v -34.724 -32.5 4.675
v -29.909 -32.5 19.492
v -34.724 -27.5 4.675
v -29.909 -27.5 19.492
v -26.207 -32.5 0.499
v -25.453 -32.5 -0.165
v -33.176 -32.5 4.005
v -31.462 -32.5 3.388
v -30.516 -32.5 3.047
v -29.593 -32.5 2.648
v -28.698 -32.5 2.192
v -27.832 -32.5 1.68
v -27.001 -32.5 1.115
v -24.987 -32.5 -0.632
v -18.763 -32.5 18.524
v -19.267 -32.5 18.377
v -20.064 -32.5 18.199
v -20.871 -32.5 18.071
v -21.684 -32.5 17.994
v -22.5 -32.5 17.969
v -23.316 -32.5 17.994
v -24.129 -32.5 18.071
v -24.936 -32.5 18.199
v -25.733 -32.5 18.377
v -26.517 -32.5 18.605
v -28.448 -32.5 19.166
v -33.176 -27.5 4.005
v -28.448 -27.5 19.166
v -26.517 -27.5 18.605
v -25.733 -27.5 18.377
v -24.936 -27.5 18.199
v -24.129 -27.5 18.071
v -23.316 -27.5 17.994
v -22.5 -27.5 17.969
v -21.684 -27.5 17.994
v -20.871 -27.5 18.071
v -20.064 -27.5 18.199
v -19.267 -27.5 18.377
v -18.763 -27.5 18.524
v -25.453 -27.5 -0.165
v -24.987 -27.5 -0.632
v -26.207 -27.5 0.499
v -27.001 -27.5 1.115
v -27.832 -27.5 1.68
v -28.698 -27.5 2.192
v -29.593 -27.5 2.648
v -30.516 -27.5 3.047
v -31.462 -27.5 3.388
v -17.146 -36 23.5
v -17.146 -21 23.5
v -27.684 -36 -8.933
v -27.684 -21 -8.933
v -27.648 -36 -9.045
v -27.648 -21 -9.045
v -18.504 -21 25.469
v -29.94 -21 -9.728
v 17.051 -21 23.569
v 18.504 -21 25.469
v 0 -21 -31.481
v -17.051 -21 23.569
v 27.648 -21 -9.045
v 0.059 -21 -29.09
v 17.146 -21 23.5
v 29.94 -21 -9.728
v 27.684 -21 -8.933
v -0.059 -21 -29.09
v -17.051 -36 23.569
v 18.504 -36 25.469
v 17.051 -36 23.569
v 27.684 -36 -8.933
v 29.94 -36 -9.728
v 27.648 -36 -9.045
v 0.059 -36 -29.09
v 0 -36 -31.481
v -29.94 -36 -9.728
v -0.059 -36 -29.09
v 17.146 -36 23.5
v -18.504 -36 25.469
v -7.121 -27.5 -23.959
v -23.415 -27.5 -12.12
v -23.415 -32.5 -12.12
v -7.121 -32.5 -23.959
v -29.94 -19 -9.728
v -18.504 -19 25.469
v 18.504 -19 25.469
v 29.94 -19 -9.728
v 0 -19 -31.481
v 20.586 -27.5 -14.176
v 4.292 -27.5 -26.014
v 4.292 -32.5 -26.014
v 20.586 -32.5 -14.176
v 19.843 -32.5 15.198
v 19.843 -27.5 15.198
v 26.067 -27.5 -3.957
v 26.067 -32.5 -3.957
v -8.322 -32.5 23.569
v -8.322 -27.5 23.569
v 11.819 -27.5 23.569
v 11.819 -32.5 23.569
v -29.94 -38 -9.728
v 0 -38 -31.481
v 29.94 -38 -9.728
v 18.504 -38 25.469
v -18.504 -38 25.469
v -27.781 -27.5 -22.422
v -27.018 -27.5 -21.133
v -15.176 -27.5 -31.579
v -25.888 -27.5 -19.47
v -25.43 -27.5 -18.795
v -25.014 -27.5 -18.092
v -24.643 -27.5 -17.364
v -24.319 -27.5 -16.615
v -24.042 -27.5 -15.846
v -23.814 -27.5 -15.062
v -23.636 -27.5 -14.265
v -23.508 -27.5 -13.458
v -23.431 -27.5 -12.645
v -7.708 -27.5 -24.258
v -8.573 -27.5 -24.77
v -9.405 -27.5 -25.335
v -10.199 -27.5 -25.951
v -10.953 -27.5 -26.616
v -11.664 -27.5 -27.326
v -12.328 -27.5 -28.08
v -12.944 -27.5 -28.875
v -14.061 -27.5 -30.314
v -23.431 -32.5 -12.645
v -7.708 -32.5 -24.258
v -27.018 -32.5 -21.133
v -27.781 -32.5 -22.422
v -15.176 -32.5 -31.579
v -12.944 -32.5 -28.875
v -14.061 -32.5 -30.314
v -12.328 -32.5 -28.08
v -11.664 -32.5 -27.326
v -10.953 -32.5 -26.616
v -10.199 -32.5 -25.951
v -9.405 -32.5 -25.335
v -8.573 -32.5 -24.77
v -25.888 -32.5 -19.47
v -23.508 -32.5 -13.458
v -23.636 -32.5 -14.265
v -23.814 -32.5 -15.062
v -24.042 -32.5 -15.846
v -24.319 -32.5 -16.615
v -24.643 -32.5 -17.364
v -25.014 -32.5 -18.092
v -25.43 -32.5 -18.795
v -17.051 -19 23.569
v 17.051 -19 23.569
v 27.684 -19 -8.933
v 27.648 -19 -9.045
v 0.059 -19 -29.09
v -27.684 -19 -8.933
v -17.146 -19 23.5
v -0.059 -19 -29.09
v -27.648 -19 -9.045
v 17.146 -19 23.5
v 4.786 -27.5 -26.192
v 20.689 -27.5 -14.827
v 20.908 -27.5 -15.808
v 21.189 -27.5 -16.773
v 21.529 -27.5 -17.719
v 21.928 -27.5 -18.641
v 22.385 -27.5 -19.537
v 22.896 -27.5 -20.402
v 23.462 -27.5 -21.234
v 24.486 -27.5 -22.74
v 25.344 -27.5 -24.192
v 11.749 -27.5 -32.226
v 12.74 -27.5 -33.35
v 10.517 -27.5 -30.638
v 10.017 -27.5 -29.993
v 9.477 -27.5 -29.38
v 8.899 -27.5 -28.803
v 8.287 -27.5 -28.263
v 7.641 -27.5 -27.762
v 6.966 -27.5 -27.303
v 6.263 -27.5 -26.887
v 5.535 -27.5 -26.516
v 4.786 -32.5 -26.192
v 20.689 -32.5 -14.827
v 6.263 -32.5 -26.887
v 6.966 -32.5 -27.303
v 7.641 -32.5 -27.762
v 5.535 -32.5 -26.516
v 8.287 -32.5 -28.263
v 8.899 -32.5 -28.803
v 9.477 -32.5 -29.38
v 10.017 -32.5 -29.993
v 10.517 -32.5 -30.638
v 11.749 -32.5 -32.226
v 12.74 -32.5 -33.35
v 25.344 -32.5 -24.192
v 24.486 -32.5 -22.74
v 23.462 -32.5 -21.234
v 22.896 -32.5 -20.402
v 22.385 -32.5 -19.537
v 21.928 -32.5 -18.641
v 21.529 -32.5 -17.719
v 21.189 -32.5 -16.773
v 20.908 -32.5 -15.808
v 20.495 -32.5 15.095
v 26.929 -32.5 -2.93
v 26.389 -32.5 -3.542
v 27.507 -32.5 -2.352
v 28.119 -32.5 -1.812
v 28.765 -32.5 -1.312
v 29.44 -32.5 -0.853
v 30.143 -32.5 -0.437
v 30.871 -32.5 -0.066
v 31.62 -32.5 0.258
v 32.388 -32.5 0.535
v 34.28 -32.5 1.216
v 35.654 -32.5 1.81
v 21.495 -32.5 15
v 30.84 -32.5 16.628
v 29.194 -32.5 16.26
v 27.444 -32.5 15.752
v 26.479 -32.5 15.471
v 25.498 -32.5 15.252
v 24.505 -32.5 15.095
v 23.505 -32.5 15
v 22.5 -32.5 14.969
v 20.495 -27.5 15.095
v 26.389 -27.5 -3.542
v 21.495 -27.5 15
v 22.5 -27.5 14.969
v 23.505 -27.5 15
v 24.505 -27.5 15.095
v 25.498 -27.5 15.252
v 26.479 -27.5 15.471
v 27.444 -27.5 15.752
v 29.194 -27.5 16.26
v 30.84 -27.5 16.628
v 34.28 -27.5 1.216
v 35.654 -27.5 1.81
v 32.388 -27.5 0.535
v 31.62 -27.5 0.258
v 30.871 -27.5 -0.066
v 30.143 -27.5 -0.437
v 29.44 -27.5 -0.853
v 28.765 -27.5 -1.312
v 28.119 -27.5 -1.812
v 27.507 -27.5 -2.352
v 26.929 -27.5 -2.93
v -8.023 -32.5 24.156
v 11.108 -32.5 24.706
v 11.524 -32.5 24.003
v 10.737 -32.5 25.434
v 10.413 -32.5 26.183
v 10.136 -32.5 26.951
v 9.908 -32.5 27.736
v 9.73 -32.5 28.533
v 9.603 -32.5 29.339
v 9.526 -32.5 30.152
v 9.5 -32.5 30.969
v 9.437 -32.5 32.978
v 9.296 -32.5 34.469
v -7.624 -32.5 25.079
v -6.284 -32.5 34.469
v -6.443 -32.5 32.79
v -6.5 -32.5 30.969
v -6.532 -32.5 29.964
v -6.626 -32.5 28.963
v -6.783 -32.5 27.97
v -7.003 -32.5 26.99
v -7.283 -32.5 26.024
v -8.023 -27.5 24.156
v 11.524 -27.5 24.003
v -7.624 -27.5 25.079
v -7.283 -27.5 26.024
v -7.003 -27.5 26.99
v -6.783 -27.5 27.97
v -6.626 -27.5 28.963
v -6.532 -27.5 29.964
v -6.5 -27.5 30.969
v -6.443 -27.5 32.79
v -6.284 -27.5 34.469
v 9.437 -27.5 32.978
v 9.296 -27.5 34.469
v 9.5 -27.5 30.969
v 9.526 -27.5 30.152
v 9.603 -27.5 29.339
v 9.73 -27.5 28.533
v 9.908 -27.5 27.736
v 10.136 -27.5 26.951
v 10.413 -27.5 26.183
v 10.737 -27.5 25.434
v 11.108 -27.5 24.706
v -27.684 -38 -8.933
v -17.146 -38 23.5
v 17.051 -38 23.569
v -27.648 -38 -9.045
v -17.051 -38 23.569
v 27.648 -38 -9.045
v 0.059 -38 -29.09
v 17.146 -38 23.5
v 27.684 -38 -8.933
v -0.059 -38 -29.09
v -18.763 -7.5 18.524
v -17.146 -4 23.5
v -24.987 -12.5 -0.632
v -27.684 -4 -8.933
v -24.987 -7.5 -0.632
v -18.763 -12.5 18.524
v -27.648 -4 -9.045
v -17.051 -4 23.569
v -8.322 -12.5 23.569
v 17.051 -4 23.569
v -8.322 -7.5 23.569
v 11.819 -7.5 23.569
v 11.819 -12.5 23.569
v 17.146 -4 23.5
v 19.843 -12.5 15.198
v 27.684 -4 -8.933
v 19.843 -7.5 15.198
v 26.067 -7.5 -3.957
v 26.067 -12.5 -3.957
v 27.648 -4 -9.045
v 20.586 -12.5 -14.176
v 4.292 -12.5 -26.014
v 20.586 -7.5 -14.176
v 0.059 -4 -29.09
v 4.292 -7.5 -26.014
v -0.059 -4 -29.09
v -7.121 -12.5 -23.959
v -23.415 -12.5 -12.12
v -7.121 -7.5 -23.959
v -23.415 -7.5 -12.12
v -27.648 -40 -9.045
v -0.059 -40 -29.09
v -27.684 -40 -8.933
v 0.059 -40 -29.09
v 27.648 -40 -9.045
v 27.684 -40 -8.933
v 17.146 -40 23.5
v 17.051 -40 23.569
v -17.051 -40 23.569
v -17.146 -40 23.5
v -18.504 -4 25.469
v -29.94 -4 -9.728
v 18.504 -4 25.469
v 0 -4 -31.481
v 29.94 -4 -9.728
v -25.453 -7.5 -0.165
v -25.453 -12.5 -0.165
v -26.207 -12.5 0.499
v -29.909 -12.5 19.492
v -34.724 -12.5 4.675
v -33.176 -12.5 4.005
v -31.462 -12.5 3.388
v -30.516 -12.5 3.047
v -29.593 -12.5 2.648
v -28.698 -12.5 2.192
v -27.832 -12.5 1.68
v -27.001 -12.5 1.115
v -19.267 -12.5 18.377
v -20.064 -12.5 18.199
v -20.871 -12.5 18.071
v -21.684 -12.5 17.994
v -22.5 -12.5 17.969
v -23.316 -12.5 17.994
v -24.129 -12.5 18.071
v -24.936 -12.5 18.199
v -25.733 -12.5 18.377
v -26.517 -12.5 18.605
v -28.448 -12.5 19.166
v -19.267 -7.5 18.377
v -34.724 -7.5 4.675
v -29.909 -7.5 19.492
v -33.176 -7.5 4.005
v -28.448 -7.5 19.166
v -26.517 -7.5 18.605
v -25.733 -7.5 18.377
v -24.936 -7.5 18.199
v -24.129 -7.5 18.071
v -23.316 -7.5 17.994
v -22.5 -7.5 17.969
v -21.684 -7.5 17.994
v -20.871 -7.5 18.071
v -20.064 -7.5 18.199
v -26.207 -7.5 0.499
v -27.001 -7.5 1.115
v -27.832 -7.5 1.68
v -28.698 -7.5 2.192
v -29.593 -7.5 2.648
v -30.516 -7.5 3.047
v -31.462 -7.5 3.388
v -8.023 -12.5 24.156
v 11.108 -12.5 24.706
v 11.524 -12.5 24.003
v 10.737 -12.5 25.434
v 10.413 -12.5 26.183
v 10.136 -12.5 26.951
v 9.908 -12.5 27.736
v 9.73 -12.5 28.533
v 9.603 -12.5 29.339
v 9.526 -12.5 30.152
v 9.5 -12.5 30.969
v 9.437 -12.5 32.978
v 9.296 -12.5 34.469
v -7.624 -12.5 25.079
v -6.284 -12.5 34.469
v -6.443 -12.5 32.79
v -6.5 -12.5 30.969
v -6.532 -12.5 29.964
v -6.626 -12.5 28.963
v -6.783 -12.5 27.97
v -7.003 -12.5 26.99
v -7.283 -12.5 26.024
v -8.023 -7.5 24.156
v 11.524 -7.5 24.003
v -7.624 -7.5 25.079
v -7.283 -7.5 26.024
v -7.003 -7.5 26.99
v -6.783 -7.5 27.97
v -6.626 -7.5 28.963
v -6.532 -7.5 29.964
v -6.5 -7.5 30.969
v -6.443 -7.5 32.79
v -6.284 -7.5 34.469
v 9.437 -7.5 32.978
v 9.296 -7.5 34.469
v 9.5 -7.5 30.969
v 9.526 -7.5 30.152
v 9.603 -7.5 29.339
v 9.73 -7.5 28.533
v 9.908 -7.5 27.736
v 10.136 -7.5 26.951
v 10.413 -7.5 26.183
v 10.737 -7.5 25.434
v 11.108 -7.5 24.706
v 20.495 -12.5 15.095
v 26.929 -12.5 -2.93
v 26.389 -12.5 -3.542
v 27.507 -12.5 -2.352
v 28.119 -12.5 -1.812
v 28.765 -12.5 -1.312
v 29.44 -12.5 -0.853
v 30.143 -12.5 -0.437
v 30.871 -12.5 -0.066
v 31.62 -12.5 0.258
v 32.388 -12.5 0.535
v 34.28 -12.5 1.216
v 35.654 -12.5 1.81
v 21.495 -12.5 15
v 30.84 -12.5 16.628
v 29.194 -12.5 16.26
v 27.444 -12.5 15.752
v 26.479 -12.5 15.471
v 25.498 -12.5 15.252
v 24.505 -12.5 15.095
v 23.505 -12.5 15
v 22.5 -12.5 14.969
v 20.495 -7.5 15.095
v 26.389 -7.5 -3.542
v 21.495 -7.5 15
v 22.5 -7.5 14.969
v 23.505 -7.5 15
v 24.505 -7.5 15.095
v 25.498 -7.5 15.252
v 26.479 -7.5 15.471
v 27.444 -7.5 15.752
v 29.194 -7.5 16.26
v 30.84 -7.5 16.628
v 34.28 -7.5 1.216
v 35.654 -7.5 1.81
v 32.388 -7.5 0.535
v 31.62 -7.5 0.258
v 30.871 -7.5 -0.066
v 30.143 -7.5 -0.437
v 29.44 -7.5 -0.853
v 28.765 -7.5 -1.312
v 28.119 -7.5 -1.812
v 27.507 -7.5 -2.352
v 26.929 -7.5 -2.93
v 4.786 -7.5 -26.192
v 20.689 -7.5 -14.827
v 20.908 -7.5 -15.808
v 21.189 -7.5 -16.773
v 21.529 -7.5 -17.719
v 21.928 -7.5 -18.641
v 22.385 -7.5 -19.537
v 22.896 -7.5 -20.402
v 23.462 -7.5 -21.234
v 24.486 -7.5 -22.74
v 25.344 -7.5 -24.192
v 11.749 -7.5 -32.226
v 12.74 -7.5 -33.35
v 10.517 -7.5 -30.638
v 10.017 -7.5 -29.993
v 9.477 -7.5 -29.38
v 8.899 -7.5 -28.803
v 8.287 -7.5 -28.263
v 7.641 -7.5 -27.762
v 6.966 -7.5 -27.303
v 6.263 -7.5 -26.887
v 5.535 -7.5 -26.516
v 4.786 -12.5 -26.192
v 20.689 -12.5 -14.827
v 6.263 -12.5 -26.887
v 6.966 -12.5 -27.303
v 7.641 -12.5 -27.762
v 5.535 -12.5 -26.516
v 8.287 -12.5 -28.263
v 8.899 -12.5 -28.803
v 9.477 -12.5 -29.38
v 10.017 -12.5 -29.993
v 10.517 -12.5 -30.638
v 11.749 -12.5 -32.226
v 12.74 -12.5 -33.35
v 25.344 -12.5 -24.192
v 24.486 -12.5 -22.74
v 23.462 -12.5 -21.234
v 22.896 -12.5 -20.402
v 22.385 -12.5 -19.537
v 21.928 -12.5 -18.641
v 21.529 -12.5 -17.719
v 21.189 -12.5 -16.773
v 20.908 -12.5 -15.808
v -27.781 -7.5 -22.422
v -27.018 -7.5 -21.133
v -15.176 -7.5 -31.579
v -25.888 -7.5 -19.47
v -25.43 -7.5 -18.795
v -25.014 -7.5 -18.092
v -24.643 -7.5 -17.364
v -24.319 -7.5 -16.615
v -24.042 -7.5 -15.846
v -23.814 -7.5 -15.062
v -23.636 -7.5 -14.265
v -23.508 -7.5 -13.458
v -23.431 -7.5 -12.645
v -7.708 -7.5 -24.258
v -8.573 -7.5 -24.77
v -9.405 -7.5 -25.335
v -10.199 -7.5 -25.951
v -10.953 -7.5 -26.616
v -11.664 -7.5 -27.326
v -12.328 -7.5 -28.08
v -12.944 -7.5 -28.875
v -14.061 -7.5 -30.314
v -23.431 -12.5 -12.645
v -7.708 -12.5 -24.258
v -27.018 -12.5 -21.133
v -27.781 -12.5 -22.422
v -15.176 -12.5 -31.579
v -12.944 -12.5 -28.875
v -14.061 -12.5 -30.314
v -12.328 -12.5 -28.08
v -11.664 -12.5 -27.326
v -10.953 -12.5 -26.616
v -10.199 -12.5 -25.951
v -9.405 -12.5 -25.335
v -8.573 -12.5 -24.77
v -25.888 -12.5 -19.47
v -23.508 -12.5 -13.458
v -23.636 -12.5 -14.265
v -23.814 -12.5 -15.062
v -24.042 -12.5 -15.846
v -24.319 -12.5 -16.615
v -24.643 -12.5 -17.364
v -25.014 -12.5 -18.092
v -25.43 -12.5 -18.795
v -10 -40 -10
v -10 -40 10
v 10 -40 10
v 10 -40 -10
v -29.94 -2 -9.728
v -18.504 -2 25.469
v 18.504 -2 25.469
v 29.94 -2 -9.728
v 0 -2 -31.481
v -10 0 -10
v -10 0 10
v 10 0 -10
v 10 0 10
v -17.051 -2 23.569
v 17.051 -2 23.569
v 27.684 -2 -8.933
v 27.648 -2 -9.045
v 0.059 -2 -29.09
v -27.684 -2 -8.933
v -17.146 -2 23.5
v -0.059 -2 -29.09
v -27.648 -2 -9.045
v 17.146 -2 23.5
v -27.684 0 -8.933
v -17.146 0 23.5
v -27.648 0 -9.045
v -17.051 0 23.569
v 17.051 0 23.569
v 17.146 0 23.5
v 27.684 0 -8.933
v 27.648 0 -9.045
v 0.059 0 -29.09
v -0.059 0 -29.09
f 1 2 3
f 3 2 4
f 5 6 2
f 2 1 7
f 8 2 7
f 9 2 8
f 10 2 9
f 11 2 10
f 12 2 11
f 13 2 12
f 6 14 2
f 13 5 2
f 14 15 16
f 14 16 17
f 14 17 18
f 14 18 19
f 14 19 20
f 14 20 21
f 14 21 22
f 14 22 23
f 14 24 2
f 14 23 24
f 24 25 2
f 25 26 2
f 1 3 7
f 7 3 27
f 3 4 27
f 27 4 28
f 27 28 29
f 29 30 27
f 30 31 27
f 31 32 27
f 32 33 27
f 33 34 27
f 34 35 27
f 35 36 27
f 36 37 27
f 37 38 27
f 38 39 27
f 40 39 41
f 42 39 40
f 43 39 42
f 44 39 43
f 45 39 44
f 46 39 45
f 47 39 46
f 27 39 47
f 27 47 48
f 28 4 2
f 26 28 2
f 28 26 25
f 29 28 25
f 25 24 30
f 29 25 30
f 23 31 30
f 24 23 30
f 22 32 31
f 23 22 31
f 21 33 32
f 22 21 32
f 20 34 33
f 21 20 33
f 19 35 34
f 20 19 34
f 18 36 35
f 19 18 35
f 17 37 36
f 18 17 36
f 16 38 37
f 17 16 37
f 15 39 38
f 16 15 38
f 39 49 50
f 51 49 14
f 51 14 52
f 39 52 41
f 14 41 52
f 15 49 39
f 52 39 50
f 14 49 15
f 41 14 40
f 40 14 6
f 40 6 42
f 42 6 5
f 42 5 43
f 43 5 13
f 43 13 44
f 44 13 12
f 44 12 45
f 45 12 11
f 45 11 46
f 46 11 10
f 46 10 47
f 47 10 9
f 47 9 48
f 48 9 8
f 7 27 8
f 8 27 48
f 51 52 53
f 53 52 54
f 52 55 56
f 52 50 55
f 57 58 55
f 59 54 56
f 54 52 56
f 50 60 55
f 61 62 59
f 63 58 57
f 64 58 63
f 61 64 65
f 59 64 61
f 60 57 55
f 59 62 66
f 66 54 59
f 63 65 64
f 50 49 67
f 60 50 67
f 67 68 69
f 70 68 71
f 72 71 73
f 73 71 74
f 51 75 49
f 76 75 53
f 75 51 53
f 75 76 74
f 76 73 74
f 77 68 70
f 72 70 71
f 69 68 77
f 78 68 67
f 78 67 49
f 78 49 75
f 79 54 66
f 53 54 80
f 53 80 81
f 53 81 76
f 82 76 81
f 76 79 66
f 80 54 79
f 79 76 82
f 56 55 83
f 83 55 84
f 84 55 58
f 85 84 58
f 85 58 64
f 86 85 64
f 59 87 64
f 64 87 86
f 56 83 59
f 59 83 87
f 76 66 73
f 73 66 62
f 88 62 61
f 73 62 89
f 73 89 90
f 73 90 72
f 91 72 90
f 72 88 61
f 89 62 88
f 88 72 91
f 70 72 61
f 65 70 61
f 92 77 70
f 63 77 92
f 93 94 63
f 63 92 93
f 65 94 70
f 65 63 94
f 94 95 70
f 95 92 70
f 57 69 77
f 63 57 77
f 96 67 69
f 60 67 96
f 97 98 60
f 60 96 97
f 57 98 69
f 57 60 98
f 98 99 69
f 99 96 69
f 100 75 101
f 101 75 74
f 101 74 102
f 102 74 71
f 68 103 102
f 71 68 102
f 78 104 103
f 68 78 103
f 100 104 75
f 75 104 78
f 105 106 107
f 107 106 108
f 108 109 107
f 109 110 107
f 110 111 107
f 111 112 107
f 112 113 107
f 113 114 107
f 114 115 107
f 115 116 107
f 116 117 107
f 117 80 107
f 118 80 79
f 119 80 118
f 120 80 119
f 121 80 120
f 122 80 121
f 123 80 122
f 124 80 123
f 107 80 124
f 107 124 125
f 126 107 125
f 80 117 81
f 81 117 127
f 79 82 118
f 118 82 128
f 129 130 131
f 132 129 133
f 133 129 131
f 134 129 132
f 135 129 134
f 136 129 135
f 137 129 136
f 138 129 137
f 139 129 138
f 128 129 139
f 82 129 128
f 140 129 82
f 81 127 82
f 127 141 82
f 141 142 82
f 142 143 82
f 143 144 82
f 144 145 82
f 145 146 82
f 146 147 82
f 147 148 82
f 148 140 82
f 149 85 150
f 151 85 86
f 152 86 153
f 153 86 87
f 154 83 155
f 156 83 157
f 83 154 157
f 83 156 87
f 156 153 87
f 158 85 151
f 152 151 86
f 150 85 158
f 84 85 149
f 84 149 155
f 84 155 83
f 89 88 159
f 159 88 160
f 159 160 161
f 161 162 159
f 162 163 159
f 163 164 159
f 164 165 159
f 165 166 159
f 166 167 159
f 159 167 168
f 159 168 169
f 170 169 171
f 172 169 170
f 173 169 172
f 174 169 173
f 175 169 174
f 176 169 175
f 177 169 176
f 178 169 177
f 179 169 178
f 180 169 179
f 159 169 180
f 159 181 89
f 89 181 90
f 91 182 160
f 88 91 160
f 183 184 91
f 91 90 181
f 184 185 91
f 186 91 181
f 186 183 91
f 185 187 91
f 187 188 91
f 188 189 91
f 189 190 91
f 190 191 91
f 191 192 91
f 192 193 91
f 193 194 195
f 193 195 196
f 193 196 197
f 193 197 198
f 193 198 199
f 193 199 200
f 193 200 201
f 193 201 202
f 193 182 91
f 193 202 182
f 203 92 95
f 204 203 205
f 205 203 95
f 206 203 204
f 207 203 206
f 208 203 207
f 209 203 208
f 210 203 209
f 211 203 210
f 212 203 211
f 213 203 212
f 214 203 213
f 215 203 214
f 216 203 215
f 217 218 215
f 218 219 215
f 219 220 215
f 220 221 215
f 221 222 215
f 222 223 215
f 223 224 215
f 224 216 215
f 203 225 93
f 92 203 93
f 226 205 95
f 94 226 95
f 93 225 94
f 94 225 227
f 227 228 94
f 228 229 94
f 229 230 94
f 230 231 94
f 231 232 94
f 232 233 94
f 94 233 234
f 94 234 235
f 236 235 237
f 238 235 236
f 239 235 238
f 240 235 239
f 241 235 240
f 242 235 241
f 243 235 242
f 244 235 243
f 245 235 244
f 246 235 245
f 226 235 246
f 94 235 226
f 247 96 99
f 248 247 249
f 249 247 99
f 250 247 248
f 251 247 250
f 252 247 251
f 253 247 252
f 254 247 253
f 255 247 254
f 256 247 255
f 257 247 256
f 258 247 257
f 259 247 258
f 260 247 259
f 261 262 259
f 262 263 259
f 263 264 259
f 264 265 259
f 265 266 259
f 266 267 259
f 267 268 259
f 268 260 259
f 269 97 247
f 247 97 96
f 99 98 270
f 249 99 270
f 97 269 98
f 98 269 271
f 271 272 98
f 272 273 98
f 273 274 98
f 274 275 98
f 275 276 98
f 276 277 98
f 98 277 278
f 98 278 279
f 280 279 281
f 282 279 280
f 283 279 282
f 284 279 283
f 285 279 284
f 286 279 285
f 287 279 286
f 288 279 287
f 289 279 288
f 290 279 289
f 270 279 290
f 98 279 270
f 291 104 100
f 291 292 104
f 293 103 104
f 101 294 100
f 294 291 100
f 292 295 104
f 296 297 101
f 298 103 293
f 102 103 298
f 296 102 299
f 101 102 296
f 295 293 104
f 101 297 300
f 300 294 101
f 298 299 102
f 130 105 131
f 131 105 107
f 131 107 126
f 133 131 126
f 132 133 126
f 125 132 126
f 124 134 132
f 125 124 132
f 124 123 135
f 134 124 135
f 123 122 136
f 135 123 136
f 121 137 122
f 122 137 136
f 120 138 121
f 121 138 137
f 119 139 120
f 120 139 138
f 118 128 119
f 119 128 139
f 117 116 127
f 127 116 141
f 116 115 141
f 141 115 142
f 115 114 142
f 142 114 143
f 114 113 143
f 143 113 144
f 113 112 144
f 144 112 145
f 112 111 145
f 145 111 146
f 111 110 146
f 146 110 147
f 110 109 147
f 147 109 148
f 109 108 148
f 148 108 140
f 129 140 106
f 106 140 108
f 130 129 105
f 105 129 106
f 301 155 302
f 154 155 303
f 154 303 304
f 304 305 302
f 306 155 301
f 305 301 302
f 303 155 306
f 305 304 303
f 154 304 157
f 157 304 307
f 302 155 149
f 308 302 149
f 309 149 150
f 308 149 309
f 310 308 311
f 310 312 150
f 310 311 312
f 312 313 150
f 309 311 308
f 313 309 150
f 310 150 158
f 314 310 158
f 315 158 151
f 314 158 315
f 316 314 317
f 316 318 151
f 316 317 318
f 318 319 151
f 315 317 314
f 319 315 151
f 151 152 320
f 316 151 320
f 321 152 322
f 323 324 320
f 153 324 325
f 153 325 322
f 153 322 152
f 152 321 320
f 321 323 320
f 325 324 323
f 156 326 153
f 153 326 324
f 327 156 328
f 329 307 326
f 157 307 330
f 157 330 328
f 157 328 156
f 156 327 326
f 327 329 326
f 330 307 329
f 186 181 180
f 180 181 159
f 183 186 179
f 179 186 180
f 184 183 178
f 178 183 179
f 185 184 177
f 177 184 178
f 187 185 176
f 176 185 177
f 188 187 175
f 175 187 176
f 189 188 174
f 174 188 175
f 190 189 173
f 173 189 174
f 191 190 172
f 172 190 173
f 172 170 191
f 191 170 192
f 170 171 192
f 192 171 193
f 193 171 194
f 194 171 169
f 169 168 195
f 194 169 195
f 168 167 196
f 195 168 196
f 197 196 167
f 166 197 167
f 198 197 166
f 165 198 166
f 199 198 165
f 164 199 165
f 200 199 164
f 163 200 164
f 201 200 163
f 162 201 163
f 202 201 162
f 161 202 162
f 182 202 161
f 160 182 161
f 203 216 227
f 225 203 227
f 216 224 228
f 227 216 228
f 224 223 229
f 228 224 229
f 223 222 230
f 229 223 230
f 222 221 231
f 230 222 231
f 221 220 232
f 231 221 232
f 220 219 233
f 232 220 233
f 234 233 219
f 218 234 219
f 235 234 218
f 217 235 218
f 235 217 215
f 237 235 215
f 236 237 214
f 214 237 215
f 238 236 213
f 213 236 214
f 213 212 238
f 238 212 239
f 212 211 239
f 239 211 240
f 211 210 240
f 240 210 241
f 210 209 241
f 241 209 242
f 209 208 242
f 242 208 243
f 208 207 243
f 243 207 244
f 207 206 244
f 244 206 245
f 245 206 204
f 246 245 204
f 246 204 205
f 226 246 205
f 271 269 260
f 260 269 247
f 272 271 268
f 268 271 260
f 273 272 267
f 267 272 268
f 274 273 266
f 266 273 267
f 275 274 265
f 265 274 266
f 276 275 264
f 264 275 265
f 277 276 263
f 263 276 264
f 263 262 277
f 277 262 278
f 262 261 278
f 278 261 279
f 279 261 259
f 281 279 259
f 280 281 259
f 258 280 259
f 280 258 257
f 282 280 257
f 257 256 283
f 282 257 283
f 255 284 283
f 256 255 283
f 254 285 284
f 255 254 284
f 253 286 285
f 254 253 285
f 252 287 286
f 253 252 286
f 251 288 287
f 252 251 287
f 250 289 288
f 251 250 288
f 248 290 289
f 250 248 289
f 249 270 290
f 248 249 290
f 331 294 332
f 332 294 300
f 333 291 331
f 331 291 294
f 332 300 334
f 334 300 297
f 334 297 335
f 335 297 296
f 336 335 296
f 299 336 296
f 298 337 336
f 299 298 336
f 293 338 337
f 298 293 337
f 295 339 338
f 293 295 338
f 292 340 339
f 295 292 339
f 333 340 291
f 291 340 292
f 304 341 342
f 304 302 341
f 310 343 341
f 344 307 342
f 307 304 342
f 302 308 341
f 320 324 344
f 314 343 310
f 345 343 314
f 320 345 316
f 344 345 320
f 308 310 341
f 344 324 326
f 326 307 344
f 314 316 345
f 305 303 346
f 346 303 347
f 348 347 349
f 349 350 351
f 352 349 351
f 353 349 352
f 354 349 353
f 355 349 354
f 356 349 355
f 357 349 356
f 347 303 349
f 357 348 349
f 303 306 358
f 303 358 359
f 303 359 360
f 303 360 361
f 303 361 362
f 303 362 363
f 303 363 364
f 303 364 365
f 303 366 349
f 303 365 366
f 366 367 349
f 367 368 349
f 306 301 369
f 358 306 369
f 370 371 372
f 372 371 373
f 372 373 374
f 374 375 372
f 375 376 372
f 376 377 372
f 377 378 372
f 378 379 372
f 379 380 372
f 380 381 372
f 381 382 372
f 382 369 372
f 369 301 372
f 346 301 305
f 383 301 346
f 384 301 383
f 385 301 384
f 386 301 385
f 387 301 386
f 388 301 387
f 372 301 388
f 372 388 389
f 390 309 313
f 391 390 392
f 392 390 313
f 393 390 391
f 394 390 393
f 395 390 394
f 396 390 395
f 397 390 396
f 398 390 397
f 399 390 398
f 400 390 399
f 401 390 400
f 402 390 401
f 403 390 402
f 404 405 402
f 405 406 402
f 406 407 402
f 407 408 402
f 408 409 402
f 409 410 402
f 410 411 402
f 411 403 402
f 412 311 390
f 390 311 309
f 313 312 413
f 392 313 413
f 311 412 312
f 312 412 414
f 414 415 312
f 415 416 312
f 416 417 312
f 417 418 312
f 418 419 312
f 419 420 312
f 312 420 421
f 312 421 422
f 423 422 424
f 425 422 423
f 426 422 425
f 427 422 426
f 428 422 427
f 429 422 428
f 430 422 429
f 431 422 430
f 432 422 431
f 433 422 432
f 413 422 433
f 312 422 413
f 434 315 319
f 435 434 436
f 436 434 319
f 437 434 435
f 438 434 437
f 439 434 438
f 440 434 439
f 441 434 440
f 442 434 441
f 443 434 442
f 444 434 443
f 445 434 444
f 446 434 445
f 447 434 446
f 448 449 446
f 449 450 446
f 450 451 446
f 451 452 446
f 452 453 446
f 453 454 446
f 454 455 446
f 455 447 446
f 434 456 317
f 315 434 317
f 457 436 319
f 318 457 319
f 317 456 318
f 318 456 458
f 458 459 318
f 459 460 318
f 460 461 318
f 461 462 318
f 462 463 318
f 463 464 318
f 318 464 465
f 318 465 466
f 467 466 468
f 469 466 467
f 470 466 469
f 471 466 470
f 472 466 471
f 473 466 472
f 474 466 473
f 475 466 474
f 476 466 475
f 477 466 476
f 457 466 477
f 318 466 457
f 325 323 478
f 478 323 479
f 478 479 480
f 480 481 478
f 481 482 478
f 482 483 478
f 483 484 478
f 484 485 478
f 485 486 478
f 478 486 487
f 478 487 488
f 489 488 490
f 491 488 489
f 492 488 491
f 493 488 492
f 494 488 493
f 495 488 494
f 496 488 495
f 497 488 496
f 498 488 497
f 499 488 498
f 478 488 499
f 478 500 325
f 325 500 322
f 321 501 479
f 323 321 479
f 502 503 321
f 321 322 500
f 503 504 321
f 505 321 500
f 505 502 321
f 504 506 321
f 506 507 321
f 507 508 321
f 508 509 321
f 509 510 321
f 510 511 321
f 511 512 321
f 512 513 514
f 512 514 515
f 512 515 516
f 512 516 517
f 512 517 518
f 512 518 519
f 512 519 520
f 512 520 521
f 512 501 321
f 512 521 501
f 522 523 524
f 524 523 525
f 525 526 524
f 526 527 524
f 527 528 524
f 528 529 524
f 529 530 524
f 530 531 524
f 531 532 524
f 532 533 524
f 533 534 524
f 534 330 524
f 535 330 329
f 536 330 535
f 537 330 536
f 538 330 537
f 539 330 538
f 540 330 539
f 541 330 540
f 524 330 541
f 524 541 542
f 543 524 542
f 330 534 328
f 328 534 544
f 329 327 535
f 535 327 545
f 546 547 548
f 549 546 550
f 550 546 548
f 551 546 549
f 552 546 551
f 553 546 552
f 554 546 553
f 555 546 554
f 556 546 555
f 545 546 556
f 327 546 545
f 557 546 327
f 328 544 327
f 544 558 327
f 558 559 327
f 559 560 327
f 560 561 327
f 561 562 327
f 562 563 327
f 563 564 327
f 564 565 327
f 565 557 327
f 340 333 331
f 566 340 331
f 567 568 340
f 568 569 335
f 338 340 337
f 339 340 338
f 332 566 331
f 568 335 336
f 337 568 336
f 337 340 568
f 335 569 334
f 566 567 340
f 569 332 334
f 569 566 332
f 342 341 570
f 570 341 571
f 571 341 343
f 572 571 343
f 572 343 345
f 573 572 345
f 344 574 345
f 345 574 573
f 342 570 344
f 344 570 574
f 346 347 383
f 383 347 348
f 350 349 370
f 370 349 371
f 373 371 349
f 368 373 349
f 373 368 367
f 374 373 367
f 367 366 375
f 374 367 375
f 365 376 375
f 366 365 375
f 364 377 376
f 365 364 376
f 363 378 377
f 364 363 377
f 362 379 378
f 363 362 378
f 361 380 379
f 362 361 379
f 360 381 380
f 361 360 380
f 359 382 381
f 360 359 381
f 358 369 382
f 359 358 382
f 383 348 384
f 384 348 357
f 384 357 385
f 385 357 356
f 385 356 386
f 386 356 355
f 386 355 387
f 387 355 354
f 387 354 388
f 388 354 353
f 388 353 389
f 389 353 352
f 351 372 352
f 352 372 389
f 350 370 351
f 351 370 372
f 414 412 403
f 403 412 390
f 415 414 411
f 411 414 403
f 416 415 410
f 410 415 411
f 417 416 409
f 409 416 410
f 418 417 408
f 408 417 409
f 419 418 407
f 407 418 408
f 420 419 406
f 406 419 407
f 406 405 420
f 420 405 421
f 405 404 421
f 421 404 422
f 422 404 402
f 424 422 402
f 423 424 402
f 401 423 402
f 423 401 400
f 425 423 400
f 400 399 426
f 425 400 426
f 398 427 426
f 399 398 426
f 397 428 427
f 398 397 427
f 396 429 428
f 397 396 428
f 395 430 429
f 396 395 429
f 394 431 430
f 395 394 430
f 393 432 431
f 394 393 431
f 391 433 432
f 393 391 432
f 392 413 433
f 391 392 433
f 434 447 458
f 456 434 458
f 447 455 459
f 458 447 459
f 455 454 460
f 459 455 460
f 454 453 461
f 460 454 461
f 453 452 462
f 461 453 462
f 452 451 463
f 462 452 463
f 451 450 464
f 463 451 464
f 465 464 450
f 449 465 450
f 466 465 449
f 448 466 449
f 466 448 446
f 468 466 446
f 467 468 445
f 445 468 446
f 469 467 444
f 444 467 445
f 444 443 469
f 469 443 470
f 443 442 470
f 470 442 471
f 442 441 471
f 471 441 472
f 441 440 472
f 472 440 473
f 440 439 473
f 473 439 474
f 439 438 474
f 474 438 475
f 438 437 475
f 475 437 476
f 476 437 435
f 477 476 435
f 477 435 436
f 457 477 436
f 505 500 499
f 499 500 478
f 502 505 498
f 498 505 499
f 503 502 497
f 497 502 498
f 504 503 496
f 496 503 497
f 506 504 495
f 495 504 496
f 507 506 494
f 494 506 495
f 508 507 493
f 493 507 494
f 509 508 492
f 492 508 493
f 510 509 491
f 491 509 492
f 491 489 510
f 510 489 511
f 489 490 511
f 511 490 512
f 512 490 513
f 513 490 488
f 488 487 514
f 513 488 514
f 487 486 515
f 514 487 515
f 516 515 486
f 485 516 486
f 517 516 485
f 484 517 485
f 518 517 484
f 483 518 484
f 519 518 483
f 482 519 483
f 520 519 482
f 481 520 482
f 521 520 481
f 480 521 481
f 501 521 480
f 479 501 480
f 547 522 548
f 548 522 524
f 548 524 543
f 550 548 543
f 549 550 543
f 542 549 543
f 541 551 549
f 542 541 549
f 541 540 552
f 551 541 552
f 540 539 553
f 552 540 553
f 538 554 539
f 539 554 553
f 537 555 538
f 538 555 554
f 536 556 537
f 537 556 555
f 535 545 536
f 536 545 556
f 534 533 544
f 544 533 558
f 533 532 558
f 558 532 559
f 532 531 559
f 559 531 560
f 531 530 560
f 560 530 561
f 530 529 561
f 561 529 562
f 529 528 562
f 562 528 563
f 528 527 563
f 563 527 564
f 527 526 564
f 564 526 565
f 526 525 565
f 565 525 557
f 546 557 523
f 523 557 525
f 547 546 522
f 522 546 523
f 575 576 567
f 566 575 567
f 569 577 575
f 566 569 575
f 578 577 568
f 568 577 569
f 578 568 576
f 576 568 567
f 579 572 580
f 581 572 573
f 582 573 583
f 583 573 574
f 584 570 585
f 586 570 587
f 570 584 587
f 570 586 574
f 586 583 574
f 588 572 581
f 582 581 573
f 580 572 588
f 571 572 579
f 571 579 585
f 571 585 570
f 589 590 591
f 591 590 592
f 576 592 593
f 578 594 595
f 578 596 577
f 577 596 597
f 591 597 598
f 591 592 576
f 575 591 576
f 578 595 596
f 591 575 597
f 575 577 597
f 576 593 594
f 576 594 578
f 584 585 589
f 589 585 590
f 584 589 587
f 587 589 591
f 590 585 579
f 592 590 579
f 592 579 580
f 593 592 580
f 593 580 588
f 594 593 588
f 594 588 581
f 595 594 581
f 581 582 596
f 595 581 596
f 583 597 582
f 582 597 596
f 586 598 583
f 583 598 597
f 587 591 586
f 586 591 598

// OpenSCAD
$fn = 100;

alT = 45; // Abstand laengs Transportzahn
olT = 15;

L = 1*alT; // Laenge
B = 40;	// Breite
NF = 3; // Anzahl Flansche
rF = 6/2; // Innenradius Flansch
sF = 0.2; // Spiel Flansch auf beweglicher Seite
aFr	= 3; // Abstand Flansch radial
aFa	= 0.5; // Abstand Flansch axial
Hb = 15; // Hoehe Bodenelement
Ht = 25; // Gesamthoehe
angP = 45; // Winkel Profil
LP = 30;

tR = 3;	// Tiefe Rillen fuer Laufrolle
bR = 4; // Breite Rillen fuer Laufrolle
aR = 17; // Abstand Rillen fuer Laufrolle
sR = 1; // Spiel Rillen

tT = 12; // Tiefe Transportzahn
bT = 7; // Breite Transportzahn
lT = 18; // Längen Tranportzahn
sT = 1; // Spiel Transportzahn

asT = 10; // Abstand seitlich Transportzahn

sN = 20; // Seitenlaenge Nabe

NC = 5; // Anzahl Kettenglieder im Eingriff


NR = round(B/aR);
Rerr = (B/aR-NR)*aR/2;

NT = round(L/alT);

// Berechnungen fuer Flansche und deren Abstaende
bfg = B/2-aFa*(NF-1);
bf1 = bfg / NF;
bf2 = bfg / (NF-1);
bf1n = bf2 + aFa*2;
bf2n = bf1 + aFa*2;

angM = 360/NC;

Lr = L;


// Korrektur, damit die Stege fuer die Rillen exakt aufeinander stossen
r = Lr/2/tan(angM/2) - Hb/2;
c = (r+tR)/r;

difference(){
	hull(){
		for(i = [0:NC-1]){
			rotate([0,-angM*i,0]) translate([+Hb/2*tan(angM/2)-Lr/2,-B,r]){
				cube([Lr-Hb*tan(angM/2),B,0.1]);
			}
		}
	}
	translate([-sN/2, -B-1, -sN/2]) cube([sN,B+2,sN]);
}
for(i = [0:NC-1]){
	rotate([0,-angM*i,0]) translate([-Lr/2+(Hb/2-tR+sR)*tan(angM/2),0,r]){
		for(j = [0:-NR]){
			translate([0,j*aR-bR/2-Rerr+sR,0]) cube([Lr-(Hb/2-tR+sR)*2*tan(angM/2),bR-sR*2,tR-sR]);
		}
	}
}

for(i = [0:NC-1]){
	rotate([0,-angM*i,0]){
		translate([-Lr/2, 0, r]){
			for(j = [0:NT-1]){
				intersection(){
					union(){
						translate([j*alT+olT+sT,-bT/2-B/2-asT+sT,0]) cube([lT-sT*2,bT-sT*2,tT-sT]);
						translate([j*alT+olT+sT,-bT/2-B/2+asT+sT,0]) cube([lT-sT*2,bT-sT*2,tT-sT]);
					}
					translate([0,0,Hb/2]) rotate([90,0,0]) cylinder(r=j*alT+olT+lT-sT,h=B);
					translate([Lr,0,Hb/2]) rotate([90,0,0]) cylinder(r=Lr-(j*alT+olT)-sT,h=B);
				}
				difference(){
					union(){
						translate([sqrt(pow(j*alT +olT+sT,2)-pow(Hb/2,2)),-bT/2-B/2-asT+sT,0]) cube([(j*alT +olT+sT) -sqrt(pow(j*alT +olT+sT,2)-pow(Hb/2,2)) +(lT-sT*2)+(Lr-(j*alT+olT+lT)+sT) -sqrt(pow(Lr-(j*alT+olT+lT)+sT,2)-pow(Hb/2,2)) ,bT-sT*2,Hb/2]);
						translate([sqrt(pow(j*alT +olT+sT,2)-pow(Hb/2,2)),-bT/2-B/2+asT+sT,0]) cube([(j*alT +olT+sT) -sqrt(pow(j*alT +olT+sT,2)-pow(Hb/2,2)) +(lT-sT*2)+(Lr-(j*alT+olT+lT)+sT) -sqrt(pow(Lr-(j*alT+olT+lT)+sT,2)-pow(Hb/2,2)) ,bT-sT*2,Hb/2]);
					}
					translate([0,0,Hb/2]) rotate([90,0,0]) cylinder(r=j*alT+olT+sT,h=B);
					translate([Lr,0,Hb/2]) rotate([90,0,0]) cylinder(r=Lr-(j*alT+olT+lT)+sT,h=B);

				}
				// Kettenglied ---
				translate([0,0,Hb/2])
				%union(){
					difference(){
						hull(){
							rotate([90,0,0]) cylinder(r=Hb/2, h=B);
							translate([L,0,0]) rotate([90,0,0]) cylinder(r=Hb/2, h=B);
						}
						translate([0,1,0]) rotate([90,0,0]) cylinder(r=rF+sF, h=B+2);
						translate([L,1,0]) rotate([90,0,0]) cylinder(r=rF, h=B+2);
					
						for(i = [0:NF-1]){
							translate([0,-i*(bf2+bf2n)+aFa,0]) rotate([90,0,0]) cylinder(r=Hb/2+aFr, h=bf2n);
						}
						for(i = [0:NF-2]){
							translate([L,-i*(bf1+bf1n)-(bf2n+bf1)/2+aFa,0]) rotate([90,0,0]) cylinder(r=Hb/2+aFr, h=bf1n);
						}
					
						for(i = [0:-NR]){
							translate([-Hb-1,(i)*aR-bR/2-Rerr,-Hb/2-1]) cube([L+Hb*2+2,bR,tR+1]);
						}
						
						for(i = [-2:NT]){
							translate([i*alT +olT,-bT/2-B/2-asT,-Hb/2-1]) cube([lT,bT,tT+1]);
							translate([i*alT +olT,-bT/2-B/2+asT,-Hb/2-1]) cube([lT,bT,tT+1]);
						}
					}
					
					hull(){
						translate([L/2-LP/2,-B,Hb/2]) cube([LP,B,0.1]);
						translate([L/2-LP/2+(Ht-Hb)*tan(angP),-B,Ht-Hb/2]) cube([LP-2*(Ht-Hb)*tan(angP),B,0.1]);
					}
				}




			}
		}
	}
}
